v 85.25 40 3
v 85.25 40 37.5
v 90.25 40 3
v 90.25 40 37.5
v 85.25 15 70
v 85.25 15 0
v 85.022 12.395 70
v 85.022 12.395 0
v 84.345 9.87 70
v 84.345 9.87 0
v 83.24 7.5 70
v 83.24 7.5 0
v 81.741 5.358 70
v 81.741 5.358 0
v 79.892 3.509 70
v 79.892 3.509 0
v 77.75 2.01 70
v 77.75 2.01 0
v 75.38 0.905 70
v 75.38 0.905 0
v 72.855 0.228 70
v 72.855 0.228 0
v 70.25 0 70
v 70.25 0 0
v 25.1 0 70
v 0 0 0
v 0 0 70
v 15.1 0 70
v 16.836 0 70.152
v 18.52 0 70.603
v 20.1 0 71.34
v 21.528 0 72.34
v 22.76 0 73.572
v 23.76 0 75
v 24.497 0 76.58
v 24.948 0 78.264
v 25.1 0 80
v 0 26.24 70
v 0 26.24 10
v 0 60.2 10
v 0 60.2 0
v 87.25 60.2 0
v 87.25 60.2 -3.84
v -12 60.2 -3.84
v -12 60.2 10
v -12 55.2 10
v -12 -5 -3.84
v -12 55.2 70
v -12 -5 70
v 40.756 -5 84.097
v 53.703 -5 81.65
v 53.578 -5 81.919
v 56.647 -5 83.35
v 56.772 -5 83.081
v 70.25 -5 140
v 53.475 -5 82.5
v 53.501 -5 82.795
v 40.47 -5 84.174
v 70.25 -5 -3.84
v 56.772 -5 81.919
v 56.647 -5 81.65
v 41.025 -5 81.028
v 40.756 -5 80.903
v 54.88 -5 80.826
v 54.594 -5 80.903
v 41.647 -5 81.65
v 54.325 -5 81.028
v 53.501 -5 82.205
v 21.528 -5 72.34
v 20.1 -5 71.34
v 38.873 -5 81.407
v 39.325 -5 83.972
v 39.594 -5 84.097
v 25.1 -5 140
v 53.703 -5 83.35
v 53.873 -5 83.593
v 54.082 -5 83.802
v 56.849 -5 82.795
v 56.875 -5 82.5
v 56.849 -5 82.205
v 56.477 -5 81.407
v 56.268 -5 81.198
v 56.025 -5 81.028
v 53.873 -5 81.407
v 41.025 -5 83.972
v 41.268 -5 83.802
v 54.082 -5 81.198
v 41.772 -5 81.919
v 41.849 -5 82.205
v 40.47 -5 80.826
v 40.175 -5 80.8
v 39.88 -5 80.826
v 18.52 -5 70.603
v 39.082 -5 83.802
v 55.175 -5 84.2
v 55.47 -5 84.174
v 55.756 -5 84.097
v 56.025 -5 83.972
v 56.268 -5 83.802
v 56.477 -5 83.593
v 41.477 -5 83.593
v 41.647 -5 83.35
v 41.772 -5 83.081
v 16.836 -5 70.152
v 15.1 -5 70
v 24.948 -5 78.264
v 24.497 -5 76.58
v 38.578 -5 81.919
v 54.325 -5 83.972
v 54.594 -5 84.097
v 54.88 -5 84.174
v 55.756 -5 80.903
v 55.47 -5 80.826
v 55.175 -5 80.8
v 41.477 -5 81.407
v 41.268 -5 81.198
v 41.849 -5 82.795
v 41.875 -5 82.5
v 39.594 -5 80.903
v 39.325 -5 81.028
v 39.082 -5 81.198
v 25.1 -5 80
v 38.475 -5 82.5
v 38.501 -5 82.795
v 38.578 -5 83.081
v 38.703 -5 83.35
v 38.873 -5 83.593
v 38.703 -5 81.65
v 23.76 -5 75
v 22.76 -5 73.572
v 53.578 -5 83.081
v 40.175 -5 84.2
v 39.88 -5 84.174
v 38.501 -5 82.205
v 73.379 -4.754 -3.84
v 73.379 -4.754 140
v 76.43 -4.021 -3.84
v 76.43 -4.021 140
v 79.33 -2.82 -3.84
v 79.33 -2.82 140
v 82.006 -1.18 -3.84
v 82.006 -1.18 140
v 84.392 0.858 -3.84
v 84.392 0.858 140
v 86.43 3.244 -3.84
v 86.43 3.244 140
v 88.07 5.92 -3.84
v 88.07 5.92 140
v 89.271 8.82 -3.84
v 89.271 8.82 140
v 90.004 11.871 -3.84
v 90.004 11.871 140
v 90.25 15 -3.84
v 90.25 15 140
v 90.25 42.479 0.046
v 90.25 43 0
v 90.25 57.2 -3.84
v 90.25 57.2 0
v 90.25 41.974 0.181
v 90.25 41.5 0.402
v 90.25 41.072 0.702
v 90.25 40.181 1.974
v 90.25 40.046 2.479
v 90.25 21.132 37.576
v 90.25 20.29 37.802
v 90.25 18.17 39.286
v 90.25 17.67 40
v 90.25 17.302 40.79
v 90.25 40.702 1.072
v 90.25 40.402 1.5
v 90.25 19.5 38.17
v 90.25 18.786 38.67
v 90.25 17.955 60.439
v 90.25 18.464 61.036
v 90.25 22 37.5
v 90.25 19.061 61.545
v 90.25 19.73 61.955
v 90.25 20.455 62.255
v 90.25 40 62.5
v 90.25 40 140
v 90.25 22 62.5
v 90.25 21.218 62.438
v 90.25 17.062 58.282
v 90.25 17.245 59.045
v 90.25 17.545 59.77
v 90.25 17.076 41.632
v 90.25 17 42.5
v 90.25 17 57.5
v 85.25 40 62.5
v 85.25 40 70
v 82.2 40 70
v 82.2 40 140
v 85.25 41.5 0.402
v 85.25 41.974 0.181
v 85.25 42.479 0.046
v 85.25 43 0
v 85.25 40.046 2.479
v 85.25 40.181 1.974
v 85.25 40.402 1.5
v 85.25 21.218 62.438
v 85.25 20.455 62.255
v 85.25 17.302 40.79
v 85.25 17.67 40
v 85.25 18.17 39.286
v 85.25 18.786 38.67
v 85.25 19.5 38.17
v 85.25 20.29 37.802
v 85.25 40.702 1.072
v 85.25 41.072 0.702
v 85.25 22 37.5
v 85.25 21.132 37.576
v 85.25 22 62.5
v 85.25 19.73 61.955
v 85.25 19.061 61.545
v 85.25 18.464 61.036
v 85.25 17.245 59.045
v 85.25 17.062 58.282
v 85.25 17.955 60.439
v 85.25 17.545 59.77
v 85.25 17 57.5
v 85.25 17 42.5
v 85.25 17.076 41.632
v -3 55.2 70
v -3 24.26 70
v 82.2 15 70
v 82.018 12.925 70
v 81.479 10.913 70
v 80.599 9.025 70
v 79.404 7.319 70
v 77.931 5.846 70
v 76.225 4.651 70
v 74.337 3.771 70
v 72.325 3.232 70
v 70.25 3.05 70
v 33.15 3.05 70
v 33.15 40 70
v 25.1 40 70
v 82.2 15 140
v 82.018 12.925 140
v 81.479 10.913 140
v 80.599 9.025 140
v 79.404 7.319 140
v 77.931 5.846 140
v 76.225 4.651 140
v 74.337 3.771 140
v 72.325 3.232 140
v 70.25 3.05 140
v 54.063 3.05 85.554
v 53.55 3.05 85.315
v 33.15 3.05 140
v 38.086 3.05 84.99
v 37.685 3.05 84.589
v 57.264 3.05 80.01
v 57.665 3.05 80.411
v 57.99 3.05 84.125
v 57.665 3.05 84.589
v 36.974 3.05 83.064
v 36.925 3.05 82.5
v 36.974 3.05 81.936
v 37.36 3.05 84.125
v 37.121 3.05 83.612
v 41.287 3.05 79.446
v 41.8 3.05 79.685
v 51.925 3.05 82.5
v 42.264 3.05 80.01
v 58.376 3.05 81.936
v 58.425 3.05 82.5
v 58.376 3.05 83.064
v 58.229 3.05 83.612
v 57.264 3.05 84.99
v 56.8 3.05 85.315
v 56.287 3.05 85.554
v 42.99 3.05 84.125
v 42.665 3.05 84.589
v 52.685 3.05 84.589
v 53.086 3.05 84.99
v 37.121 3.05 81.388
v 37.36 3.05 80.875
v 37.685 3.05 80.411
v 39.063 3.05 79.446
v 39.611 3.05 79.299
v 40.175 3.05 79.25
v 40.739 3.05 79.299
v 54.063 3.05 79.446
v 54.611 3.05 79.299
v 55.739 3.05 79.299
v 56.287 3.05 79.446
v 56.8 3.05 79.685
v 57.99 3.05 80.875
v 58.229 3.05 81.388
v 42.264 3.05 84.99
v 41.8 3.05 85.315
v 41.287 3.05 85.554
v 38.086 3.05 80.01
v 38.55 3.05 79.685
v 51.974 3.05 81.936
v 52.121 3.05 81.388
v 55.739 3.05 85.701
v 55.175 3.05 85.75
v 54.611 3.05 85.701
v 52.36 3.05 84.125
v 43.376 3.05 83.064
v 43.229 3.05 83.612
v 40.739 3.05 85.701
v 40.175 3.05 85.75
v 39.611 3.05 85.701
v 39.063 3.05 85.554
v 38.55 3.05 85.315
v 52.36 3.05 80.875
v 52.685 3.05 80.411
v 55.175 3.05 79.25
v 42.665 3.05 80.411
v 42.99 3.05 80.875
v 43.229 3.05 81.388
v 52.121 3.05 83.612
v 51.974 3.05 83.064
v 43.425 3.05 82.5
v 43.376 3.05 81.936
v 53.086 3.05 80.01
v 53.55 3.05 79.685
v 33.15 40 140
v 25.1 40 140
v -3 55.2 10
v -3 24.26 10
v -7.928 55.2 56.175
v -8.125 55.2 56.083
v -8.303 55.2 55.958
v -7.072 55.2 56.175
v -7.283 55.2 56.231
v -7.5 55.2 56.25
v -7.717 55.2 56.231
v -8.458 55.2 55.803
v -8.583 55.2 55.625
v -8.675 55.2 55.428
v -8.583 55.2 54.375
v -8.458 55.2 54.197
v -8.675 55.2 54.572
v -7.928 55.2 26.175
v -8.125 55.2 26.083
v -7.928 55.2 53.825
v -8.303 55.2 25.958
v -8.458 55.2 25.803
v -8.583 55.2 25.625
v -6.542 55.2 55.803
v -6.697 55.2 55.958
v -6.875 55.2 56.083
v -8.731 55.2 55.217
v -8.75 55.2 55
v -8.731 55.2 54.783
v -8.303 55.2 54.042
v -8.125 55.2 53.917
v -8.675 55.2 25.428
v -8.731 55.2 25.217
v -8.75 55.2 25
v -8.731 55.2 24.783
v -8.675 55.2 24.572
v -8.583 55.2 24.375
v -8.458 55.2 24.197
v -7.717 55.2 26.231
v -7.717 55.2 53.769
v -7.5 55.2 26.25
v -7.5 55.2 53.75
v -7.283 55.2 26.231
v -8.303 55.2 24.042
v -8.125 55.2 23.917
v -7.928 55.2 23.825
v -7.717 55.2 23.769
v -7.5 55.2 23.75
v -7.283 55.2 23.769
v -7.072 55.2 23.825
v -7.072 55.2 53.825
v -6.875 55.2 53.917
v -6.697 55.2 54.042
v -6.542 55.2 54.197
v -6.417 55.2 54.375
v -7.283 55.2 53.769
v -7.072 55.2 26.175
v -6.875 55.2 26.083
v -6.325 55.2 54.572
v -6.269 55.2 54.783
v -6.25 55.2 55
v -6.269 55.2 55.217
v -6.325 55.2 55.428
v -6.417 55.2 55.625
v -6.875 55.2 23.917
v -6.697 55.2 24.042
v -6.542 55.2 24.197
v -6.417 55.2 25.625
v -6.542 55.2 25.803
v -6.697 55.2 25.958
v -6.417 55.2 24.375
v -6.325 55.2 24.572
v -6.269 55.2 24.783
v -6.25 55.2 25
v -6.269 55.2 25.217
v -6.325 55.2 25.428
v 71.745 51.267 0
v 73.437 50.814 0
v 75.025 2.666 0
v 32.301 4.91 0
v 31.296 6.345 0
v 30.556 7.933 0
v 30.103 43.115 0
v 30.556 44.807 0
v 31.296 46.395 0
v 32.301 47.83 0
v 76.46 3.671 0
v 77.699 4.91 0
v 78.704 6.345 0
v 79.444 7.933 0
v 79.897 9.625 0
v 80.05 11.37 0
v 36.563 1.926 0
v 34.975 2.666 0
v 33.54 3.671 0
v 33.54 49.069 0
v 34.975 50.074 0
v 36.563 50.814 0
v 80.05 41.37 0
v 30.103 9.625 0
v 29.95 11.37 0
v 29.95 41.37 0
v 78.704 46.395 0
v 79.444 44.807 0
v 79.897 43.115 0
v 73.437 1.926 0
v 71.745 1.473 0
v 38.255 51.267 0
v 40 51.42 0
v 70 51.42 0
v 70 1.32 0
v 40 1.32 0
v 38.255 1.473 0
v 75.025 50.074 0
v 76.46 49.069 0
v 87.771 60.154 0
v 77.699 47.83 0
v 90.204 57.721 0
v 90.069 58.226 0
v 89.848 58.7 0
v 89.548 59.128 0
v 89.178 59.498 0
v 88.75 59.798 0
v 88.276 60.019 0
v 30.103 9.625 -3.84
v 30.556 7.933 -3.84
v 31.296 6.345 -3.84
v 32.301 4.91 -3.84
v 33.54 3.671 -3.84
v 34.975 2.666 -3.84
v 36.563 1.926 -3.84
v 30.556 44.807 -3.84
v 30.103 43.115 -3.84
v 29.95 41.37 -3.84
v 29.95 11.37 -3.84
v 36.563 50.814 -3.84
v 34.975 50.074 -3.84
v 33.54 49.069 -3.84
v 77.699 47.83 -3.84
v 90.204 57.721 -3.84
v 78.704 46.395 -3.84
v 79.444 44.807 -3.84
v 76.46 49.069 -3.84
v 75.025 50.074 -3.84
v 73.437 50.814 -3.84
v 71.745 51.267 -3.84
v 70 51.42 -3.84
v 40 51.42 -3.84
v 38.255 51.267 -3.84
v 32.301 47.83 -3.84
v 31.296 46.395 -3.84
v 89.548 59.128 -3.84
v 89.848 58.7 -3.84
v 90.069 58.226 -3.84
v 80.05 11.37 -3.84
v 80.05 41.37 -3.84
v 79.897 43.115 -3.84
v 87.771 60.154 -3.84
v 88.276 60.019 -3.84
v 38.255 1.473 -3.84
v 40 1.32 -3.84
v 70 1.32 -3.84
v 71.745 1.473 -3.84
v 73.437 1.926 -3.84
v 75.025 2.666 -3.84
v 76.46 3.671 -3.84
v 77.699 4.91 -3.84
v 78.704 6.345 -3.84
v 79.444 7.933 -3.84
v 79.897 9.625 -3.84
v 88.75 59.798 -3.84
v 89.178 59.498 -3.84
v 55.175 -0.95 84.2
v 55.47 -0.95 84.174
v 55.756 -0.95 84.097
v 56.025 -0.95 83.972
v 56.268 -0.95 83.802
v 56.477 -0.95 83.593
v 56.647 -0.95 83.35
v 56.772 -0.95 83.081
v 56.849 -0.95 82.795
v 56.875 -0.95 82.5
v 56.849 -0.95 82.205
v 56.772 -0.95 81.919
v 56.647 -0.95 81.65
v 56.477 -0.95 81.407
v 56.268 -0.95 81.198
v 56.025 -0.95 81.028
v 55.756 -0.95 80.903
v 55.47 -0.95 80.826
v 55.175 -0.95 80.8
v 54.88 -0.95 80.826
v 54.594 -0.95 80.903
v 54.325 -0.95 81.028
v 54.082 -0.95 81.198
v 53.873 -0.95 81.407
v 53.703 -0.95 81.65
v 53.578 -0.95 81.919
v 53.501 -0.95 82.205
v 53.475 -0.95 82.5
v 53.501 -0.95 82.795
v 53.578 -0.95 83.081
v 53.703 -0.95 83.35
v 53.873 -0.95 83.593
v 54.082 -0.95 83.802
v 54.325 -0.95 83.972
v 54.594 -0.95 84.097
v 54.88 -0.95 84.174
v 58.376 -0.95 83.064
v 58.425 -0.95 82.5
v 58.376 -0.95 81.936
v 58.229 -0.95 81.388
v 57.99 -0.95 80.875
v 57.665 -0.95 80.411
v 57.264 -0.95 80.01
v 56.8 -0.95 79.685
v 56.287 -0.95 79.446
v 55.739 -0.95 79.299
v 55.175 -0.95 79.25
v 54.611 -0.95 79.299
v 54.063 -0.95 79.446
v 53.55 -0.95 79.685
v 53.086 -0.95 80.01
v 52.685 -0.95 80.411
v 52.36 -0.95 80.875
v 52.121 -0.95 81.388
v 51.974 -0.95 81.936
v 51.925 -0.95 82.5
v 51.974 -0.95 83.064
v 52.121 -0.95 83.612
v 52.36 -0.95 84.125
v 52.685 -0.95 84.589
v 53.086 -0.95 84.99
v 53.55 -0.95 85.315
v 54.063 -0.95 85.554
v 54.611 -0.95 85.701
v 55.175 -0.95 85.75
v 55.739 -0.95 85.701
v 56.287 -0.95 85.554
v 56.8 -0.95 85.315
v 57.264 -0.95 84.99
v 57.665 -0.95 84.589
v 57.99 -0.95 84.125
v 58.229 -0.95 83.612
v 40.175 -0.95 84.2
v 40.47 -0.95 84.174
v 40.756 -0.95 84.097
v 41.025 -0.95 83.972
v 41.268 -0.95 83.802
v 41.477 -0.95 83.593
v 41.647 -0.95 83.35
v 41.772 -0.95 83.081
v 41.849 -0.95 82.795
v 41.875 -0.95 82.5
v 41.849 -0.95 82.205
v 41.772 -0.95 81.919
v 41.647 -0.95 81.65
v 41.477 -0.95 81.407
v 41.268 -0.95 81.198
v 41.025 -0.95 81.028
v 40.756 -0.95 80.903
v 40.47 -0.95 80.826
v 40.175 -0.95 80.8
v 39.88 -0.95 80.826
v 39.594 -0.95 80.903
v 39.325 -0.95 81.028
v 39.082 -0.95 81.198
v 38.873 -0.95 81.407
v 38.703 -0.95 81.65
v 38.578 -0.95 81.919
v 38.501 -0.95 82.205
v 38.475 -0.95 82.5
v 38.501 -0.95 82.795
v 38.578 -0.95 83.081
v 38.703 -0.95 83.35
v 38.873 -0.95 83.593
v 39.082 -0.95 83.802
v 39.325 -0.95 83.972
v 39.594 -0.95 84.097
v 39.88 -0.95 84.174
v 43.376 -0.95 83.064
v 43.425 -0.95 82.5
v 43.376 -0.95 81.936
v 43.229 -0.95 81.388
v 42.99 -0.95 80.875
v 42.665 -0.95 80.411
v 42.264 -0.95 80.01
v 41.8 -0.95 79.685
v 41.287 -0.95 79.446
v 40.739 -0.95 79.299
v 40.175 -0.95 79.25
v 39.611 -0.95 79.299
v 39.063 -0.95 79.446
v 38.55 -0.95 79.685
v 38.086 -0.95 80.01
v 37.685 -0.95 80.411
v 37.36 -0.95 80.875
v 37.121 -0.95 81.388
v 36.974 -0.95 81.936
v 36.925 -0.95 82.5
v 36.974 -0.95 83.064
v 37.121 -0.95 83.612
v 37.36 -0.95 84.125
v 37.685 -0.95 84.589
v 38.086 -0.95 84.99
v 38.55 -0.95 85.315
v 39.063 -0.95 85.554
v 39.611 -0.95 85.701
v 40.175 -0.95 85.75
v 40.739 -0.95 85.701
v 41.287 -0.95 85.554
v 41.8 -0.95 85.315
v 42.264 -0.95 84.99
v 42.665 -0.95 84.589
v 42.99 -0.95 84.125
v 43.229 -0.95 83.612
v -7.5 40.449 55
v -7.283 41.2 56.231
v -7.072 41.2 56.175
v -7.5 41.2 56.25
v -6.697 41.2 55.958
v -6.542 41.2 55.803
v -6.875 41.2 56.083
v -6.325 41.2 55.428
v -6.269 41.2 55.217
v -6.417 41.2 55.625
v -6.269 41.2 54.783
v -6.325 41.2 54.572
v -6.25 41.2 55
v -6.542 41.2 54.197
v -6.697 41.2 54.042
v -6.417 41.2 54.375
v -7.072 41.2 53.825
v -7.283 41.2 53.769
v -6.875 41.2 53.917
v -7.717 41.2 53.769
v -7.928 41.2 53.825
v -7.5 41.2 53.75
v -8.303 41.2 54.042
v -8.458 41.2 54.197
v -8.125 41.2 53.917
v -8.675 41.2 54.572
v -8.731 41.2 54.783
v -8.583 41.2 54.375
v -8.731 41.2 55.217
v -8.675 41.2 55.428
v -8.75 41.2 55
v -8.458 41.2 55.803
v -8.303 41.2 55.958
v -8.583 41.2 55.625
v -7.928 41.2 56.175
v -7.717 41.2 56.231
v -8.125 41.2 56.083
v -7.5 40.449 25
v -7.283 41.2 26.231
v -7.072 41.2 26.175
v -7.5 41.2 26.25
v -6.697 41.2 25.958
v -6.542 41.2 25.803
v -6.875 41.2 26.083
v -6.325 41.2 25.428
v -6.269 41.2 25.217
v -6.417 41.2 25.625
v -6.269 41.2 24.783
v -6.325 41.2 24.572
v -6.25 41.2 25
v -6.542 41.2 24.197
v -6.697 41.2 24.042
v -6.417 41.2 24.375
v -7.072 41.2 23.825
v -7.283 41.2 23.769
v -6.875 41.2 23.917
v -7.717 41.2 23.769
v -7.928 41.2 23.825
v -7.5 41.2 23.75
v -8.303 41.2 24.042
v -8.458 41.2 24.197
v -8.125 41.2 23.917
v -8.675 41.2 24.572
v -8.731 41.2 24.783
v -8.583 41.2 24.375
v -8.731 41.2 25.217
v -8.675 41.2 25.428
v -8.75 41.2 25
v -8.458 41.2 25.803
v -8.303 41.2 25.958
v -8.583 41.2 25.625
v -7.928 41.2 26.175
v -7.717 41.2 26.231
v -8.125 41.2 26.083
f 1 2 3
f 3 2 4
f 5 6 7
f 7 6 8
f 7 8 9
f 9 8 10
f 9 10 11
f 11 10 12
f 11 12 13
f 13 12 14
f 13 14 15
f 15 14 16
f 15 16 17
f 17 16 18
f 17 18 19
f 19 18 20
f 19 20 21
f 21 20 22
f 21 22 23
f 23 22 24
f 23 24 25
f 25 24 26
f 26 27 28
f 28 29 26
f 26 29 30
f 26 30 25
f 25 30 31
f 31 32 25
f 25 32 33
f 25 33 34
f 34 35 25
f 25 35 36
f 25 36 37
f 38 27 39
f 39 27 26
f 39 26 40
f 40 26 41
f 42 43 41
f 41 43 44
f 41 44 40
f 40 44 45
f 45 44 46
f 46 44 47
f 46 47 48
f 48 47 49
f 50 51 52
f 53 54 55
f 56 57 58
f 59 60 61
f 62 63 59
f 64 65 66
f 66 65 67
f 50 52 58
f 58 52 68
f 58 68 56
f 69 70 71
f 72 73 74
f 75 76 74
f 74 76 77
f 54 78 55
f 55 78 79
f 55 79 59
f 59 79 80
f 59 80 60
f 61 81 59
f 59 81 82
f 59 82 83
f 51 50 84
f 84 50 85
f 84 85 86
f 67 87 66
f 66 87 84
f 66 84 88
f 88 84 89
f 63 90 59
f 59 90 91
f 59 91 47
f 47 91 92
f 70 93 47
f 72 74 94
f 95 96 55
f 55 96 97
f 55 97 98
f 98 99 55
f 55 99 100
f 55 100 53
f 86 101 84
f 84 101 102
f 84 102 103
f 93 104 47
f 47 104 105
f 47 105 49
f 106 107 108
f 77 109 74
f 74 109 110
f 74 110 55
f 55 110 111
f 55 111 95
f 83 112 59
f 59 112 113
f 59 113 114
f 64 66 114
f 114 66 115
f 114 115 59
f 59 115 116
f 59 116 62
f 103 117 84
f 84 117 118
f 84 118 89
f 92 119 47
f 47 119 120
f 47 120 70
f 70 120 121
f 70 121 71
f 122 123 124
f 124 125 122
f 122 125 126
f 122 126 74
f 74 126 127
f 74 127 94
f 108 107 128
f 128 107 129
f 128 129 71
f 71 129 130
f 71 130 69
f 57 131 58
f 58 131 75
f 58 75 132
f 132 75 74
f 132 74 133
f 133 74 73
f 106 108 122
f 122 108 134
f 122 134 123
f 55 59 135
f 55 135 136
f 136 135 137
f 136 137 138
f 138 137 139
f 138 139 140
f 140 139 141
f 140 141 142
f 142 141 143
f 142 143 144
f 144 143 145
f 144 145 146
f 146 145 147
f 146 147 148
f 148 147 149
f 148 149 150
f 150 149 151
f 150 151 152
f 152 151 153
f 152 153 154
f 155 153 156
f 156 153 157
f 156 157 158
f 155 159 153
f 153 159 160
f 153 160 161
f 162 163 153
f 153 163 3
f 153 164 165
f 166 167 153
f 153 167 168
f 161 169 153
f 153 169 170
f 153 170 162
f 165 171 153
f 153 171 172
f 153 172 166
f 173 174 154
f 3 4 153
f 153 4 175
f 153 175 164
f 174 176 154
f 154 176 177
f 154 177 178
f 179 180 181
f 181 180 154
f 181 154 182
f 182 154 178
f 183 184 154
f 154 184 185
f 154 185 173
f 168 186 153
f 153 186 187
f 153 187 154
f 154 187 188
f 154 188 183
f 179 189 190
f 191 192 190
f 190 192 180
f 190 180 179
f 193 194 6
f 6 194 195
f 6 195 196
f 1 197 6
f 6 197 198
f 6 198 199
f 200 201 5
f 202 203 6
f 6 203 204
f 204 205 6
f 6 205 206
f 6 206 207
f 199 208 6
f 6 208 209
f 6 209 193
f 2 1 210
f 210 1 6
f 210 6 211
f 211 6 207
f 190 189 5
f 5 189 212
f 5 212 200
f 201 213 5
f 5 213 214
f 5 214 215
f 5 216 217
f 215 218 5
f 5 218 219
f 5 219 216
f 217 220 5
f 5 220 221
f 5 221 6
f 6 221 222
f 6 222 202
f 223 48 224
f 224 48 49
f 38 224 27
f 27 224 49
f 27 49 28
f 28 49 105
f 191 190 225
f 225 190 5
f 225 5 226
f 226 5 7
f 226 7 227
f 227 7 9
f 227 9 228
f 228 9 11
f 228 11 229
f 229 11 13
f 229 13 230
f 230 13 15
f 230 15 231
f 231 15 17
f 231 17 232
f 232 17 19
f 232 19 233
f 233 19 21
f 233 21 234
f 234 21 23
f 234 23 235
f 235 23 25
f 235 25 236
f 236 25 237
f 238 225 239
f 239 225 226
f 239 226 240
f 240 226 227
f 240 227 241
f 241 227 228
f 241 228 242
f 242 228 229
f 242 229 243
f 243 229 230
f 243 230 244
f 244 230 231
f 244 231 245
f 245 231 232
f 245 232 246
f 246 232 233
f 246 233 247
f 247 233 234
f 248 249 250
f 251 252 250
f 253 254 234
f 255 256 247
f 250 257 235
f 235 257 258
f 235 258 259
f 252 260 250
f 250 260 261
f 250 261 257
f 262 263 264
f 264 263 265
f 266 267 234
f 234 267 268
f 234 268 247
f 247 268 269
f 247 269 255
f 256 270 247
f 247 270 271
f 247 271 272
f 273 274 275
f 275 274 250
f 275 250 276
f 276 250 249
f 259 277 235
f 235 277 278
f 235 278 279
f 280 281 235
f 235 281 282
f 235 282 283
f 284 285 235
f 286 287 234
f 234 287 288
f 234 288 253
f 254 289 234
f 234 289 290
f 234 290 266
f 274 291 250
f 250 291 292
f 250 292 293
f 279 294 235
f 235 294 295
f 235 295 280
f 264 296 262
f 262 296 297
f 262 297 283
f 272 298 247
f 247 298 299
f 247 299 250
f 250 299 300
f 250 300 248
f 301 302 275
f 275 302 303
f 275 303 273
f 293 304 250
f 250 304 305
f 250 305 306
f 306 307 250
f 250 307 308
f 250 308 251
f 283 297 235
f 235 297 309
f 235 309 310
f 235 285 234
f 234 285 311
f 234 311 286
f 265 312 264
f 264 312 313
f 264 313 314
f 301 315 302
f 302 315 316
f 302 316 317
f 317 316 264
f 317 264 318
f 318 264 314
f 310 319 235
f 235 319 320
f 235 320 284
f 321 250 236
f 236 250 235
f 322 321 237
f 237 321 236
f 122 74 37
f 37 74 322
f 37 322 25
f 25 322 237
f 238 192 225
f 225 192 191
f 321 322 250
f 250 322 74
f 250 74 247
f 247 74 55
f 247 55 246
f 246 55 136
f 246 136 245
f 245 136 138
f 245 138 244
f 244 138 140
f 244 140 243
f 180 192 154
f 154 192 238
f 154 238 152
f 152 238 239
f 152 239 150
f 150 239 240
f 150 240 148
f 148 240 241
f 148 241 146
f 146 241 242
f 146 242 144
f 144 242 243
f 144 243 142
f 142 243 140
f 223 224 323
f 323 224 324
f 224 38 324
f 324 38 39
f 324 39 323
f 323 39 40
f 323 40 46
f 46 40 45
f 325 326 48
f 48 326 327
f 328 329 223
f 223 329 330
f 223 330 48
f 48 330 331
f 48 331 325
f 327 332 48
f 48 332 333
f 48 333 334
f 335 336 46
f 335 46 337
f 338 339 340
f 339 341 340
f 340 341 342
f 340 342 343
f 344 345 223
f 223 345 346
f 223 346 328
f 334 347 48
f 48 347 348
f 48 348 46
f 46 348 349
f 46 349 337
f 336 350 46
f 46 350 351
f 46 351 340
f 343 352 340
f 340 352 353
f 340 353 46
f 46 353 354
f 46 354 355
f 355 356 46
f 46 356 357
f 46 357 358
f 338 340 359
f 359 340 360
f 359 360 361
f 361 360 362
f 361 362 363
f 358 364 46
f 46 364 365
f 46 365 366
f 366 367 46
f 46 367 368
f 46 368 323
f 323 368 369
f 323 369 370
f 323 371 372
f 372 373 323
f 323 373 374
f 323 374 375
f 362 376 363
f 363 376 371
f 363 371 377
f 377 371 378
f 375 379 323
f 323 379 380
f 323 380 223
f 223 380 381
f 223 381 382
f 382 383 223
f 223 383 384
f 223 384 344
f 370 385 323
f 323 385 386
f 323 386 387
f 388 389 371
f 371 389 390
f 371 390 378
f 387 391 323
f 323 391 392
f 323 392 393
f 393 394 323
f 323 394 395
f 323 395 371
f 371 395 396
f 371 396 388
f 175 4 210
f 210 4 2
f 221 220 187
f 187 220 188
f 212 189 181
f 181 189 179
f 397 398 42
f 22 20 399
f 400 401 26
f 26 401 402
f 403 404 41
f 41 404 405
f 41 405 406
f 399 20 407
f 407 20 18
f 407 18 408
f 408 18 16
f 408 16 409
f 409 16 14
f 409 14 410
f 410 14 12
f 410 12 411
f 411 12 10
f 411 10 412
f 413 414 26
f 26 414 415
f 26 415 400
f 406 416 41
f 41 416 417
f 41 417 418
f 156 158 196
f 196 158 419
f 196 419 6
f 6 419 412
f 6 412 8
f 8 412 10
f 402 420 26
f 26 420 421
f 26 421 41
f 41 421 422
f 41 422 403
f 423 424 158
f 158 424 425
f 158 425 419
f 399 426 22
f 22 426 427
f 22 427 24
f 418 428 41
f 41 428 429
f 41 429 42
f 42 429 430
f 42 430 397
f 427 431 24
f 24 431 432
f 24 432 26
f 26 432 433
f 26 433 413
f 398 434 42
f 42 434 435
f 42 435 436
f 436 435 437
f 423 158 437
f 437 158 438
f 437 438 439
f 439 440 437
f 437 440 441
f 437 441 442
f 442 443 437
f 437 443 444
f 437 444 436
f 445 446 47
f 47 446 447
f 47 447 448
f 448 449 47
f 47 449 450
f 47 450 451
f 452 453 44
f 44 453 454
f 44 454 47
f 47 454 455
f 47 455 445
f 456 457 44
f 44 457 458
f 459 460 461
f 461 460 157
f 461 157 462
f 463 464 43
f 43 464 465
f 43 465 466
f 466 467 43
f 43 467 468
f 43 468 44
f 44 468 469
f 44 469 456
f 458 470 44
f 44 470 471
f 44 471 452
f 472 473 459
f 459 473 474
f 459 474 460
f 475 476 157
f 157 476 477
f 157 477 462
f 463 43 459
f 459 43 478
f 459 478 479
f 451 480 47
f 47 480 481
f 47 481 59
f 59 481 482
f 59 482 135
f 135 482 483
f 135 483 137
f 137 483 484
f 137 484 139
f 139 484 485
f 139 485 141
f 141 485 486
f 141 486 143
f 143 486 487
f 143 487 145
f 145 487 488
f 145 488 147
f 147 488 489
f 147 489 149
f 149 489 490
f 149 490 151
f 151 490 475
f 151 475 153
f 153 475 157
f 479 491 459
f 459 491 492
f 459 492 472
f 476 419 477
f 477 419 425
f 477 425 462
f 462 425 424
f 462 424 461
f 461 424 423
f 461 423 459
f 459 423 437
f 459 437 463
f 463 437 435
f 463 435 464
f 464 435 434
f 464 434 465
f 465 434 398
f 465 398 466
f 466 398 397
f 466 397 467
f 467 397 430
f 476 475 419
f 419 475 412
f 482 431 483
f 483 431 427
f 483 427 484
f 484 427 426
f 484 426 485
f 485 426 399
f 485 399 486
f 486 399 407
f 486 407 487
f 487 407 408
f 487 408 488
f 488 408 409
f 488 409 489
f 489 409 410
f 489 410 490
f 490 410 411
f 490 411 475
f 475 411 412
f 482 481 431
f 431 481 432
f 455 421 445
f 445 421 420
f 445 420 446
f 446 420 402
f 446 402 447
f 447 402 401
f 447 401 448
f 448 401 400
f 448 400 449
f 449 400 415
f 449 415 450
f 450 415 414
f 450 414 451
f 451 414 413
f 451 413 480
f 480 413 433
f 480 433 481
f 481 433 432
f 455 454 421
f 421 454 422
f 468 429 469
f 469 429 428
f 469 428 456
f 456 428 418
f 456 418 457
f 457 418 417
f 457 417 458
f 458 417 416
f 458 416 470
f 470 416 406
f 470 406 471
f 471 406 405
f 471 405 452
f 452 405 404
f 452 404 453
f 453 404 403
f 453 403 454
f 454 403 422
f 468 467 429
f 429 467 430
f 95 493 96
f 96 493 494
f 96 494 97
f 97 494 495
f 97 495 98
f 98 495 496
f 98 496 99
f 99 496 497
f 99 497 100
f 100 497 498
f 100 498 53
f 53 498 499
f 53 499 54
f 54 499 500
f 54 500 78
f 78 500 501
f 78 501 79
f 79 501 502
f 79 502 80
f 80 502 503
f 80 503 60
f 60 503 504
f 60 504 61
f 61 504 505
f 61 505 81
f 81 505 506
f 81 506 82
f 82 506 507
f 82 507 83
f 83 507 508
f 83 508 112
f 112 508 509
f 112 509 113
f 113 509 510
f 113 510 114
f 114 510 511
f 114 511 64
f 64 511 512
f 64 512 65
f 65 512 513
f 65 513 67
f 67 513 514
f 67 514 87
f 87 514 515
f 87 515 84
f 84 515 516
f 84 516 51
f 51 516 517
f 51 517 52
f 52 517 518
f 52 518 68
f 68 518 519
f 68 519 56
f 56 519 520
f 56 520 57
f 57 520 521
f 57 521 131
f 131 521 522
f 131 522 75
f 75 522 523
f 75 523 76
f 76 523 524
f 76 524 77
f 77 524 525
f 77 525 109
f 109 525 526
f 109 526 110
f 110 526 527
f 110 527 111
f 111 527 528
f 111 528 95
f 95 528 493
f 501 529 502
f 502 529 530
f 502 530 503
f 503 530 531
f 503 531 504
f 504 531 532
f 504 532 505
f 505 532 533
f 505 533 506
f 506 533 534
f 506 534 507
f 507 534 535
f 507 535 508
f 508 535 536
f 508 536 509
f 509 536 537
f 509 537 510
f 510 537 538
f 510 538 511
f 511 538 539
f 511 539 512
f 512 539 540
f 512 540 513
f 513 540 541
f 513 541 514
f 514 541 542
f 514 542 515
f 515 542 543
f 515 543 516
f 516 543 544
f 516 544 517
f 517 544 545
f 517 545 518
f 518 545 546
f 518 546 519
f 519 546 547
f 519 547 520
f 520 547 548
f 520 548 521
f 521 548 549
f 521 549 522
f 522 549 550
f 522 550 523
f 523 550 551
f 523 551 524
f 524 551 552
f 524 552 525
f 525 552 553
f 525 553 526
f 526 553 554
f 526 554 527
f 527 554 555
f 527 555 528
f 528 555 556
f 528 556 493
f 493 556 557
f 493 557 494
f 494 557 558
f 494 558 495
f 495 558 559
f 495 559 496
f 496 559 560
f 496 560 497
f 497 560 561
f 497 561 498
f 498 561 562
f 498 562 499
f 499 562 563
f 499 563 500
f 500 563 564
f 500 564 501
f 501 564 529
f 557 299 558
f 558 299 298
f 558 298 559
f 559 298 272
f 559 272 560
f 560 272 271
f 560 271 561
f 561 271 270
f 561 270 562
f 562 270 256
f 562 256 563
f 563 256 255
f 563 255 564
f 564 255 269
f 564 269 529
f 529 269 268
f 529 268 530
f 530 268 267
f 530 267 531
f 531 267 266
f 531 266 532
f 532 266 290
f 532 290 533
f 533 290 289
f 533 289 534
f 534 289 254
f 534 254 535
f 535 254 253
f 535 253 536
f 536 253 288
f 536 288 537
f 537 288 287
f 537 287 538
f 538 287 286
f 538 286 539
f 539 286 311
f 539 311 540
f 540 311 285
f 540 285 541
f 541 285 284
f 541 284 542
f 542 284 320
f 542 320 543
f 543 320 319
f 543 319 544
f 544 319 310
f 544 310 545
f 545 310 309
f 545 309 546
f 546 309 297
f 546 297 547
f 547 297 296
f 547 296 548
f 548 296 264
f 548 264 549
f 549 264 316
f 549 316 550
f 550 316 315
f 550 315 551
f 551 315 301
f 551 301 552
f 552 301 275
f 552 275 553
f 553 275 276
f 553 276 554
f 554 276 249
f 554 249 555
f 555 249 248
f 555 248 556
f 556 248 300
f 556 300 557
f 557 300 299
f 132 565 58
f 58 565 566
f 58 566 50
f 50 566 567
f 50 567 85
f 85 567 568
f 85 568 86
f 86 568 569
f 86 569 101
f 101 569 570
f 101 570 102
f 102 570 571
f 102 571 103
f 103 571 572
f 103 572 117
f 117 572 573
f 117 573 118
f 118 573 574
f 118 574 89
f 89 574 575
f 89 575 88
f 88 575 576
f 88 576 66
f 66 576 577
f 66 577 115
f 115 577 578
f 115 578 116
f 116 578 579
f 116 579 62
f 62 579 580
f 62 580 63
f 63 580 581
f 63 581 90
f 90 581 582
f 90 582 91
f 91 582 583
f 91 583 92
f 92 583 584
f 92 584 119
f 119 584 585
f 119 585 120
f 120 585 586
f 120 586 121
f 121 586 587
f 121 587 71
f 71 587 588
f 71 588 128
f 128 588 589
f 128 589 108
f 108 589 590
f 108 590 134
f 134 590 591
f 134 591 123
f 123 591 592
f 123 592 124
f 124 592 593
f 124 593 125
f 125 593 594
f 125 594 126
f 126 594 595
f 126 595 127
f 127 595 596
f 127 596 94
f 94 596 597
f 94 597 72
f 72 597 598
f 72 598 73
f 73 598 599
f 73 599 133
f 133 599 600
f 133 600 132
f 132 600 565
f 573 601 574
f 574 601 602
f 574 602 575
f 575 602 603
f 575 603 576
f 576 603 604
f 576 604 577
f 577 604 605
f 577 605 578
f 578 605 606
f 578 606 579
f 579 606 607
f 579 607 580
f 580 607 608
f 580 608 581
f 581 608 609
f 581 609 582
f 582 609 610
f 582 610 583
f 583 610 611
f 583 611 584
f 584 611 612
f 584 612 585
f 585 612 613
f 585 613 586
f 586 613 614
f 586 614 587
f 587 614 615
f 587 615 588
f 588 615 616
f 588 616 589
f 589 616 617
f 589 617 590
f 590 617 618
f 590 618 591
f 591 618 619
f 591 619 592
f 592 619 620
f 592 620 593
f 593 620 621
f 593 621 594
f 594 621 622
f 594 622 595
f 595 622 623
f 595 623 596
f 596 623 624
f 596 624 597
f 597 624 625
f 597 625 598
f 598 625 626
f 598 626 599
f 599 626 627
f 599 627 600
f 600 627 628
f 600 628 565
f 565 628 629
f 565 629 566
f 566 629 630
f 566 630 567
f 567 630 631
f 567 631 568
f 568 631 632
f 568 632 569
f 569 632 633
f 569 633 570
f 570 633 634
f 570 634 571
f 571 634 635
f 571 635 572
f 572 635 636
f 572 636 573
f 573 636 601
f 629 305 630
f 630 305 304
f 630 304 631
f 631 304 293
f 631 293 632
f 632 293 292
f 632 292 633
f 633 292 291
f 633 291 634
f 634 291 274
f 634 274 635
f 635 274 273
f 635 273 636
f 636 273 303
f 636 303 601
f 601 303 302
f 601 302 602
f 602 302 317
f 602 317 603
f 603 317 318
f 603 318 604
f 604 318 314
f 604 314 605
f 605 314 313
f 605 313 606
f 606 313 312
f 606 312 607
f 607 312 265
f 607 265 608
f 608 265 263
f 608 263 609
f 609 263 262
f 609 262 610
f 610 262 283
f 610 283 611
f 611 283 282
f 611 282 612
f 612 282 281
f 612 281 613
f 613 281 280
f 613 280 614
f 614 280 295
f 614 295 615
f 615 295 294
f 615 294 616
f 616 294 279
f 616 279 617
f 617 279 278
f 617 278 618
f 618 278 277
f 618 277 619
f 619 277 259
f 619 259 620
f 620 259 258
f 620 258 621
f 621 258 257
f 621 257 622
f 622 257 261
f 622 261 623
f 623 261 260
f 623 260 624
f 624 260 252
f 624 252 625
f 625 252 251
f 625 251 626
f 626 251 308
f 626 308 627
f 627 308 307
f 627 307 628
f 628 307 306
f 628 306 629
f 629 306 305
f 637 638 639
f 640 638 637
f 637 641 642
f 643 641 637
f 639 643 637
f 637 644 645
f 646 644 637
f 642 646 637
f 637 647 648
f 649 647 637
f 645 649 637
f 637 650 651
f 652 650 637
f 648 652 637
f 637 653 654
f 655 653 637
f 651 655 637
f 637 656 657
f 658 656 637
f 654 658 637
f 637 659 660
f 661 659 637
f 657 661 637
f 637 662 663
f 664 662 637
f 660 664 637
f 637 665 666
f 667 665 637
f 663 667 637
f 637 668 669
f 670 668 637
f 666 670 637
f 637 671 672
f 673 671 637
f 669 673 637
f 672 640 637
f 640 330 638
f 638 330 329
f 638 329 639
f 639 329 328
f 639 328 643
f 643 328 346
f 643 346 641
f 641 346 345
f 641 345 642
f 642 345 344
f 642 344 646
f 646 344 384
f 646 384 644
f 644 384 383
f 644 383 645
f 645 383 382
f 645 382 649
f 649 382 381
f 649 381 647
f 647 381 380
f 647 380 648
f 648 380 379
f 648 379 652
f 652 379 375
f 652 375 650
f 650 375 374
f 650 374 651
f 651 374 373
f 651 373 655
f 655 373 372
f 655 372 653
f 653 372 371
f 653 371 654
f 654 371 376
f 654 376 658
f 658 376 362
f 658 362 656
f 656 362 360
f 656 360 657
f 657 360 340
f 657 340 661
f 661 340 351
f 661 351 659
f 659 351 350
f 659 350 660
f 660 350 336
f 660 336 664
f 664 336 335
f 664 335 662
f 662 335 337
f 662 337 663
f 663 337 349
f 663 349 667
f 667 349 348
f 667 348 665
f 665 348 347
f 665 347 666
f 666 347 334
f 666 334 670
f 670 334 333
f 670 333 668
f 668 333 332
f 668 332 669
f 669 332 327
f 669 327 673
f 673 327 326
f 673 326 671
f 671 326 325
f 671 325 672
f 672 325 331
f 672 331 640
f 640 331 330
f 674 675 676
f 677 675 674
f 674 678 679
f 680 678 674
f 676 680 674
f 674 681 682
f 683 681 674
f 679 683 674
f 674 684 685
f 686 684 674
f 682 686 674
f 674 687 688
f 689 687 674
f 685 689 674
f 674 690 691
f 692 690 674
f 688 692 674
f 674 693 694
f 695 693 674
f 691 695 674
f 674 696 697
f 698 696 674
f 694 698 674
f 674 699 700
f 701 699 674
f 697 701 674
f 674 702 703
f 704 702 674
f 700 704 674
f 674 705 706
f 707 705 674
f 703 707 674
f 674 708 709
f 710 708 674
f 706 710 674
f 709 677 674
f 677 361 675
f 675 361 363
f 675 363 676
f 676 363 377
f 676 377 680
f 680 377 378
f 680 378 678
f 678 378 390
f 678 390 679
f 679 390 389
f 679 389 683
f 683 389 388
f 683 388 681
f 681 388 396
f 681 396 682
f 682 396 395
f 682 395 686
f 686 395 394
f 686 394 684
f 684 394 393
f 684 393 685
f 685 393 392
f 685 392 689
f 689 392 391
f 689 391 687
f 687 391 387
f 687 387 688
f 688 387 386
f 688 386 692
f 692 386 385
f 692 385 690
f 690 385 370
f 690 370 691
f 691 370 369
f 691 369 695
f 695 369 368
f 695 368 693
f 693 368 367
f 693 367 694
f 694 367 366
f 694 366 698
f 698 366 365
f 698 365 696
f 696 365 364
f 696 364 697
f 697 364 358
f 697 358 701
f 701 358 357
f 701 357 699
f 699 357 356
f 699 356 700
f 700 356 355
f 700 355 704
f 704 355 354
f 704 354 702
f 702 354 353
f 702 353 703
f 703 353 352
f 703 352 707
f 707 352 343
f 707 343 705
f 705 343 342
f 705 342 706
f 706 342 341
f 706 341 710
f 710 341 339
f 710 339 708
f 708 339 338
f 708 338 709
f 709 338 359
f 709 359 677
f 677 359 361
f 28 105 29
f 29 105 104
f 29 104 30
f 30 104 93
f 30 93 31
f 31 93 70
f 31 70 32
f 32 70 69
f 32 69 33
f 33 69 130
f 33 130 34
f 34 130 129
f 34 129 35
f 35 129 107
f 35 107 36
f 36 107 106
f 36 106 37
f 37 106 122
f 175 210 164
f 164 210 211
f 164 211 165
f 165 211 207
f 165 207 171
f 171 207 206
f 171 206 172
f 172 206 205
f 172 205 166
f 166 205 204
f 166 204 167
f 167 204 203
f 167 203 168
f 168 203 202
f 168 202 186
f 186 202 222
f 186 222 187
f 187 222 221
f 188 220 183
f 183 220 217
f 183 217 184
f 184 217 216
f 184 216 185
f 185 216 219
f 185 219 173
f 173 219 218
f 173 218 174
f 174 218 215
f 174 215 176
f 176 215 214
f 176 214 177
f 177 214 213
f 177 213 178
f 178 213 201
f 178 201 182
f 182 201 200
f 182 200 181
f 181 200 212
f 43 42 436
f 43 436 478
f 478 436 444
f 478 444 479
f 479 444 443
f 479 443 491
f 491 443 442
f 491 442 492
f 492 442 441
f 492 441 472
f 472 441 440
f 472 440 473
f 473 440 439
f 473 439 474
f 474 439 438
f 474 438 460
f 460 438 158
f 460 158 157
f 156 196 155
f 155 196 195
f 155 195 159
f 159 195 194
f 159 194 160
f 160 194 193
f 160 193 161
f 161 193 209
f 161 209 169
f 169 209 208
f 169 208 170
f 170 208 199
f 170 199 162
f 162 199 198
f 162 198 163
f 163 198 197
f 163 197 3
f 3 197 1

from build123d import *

# Parameters (mm, degrees)
BOSS_EXTRUDE1_DEPTH            = 70
BOSS_EXTRUDE2_DEPTH            = 70
CUT_EXTRUDE1_DEPTH             = 60
SKETCH13_W                     = 9
SKETCH13_H                     = 60
CUT_EXTRUDE3_DEPTH             = 5
SKETCH12_W                     = 25
SKETCH12_H                     = 23
CUT_EXTRUDE2_DEPTH             = 5
BOSS_EXTRUDE3_DEPTH            = 3.84
CBORE_FOR_M3_SHCS1_D           = 3.4
CBORE_FOR_M3_SHCS1_DEPTH       = 8.05
CBORE_FOR_M3_SHCS1_CBORE_D     = 6.5
CBORE_FOR_M3_SHCS1_CBORE_DEPTH = 4
CBORE_FOR_M3_SHCS1_TIP         = 1.021463052
M3X0_5_TAPPED_HOLE1_D          = 2.5
M3X0_5_TAPPED_HOLE1_DEPTH      = 14
M3X0_5_TAPPED_HOLE1_TIP        = 0.751075774
FILLET1_R                      = 10
FILLET4_R                      = 5
FILLET5_R                      = 3
TOLERANCE_BY                   = 0.05
TOLERANCE_2_BY                 = 0.05
TOLERANCE_3_BY                 = 0.05
TOLERANCE_4_BY                 = 0.05
TOLERANCE_5_BY                 = 0.05
TOLERANCE_6_BY                 = 0.05
TOLERANCE_7_BY                 = 0.05
TOLERANCE_8_BY                 = 0.05


with BuildPart() as part:
    # Sketch3 → Boss-Extrude1 (new body)
    with BuildSketch(Plane.XY):
        with BuildLine():
            Line((85.25, 15), (85.25, 40))
            Line((85.25, 40), (90.25, 40))
            Line((90.25, 40), (90.25, 15))
            ThreePointArc((90.25, 15), (84.392135624, 0.857864376), (70.25, -5))
            Line((70.25, -5), (-12, -5))
            Line((-12, -5), (-12, 60.2))
            Line((-12, 60.2), (0, 60.2))
            Line((0, 60.2), (0, 0))
            Line((0, 0), (70.25, 0))
            ThreePointArc((70.25, 0), (80.856601718, 4.393398282), (85.25, 15))
        make_face()
    extrude(amount=BOSS_EXTRUDE1_DEPTH)

    # Sketch5 → Boss-Extrude2 (add)
    with BuildSketch(Plane.XY.offset(70)):
        with BuildLine():
            Line((82.2, 15), (82.2, 40))
            Line((82.2, 40), (90.25, 40))
            Line((90.25, 40), (90.25, 15))
            ThreePointArc((90.25, 15), (84.392135624, 0.857864376), (70.25, -5))
            Line((70.25, -5), (25.1, -5))
            Line((25.1, -5), (25.1, 40))
            Line((25.1, 40), (33.15, 40))
            Line((33.15, 40), (33.15, 3.05))
            Line((33.15, 3.05), (70.25, 3.05))
            ThreePointArc((70.25, 3.05), (78.699926035, 6.550073965), (82.2, 15))
        make_face()
    extrude(amount=BOSS_EXTRUDE2_DEPTH)

    # Sketch6 → Cut-Extrude1 (cut)
    with BuildSketch(Plane.XY.offset(70)):
        Polygon((-3, 24.26), (0, 26.24), (0, 60.2), (-3, 60.2), align=None)
    extrude(amount=-CUT_EXTRUDE1_DEPTH, mode=Mode.SUBTRACT)

    # Sketch13 → Cut-Extrude3 (cut)
    with BuildSketch(Plane(origin=(0, 60.2, 0), x_dir=(1, 0, 0), z_dir=(0, 1, 0))):
        with Locations((-7.5, -40)):
            Rectangle(SKETCH13_W, SKETCH13_H)
    extrude(amount=-CUT_EXTRUDE3_DEPTH, mode=Mode.SUBTRACT)

    # Sketch12 → Cut-Extrude2 (cut)
    with BuildSketch(Plane(origin=(90.25, 0, 0), x_dir=(0, 0, -1), z_dir=(1, 0, 0))):
        with Locations((-50, 28.5)):
            Rectangle(SKETCH12_W, SKETCH12_H)
    extrude(amount=-CUT_EXTRUDE2_DEPTH, mode=Mode.SUBTRACT)

    # Sketch7 → Boss-Extrude3 (add)
    with BuildSketch(Plane.XY):
        with BuildLine():
            Line((-12, 60.2), (-12, -5))
            Line((-12, -5), (70.25, -5))
            ThreePointArc((70.25, -5), (84.392135624, 0.857864376), (90.25, 15))
            Line((90.25, 15), (90.25, 60.2))
            Line((90.25, 60.2), (-12, 60.2))
        make_face()
        with BuildLine():
            Line((70, 51.37), (40, 51.37))
            ThreePointArc((40, 51.37), (32.928932188, 48.441067812), (30, 41.37))
            Line((30, 41.37), (30, 11.37))
            ThreePointArc((30, 11.37), (32.928932188, 4.298932188), (40, 1.37))
            Line((40, 1.37), (70, 1.37))
            ThreePointArc((70, 1.37), (77.071067812, 4.298932188), (80, 11.37))
            Line((80, 11.37), (80, 41.37))
            ThreePointArc((80, 41.37), (77.071067812, 48.441067812), (70, 51.37))
        make_face(mode=Mode.SUBTRACT)
    extrude(amount=-BOSS_EXTRUDE3_DEPTH)

    # CBORE for M3 SHCS1
    with Locations(Plane(origin=(0, 3.05, 0), x_dir=(1, 0, 0), z_dir=(0, 1, 0))):
        with Locations((40.175, -82.5), (55.175, -82.5)):
            CounterBoreHole(CBORE_FOR_M3_SHCS1_D / 2, CBORE_FOR_M3_SHCS1_CBORE_D / 2, CBORE_FOR_M3_SHCS1_CBORE_DEPTH, depth=CBORE_FOR_M3_SHCS1_DEPTH)
            with Locations((0, 0, -(CBORE_FOR_M3_SHCS1_DEPTH + CBORE_FOR_M3_SHCS1_TIP / 2))):  # 118° drill point
                Cone(0, CBORE_FOR_M3_SHCS1_D / 2, CBORE_FOR_M3_SHCS1_TIP, mode=Mode.SUBTRACT)

    # M3x0.5 Tapped Hole1
    with Locations(Plane(origin=(0, 55.2, 0), x_dir=(1, 0, 0), z_dir=(0, 1, 0))):
        with Locations((-7.5, -25), (-7.5, -55)):
            Hole(M3X0_5_TAPPED_HOLE1_D / 2, depth=M3X0_5_TAPPED_HOLE1_DEPTH)
            with Locations((0, 0, -(M3X0_5_TAPPED_HOLE1_DEPTH + M3X0_5_TAPPED_HOLE1_TIP / 2))):  # 118° drill point
                Cone(0, M3X0_5_TAPPED_HOLE1_D / 2, M3X0_5_TAPPED_HOLE1_TIP, mode=Mode.SUBTRACT)

    # Fillet1
    fillet1_edges = [part.edges().sort_by_distance(p)[0] for p in [
        (25.1, -2.5, 70),
    ]]
    fillet(fillet1_edges, radius=FILLET1_R)

    # Fillet4
    fillet4_edges = [part.edges().sort_by_distance(p)[0] for p in [
        (87.75, 17, 37.5),
        (87.75, 17, 62.5),
    ]]
    fillet(fillet4_edges, radius=FILLET4_R)

    # Fillet5
    fillet5_edges = [part.edges().sort_by_distance(p)[0] for p in [
        (87.75, 40, 0),
        (90.25, 60.2, -1.92),
    ]]
    fillet(fillet5_edges, radius=FILLET5_R)

    # Tolerance: a curved face moved inward by 0.05
    add(Solid.thicken(part.faces().sort_by_distance((32.928932188, 4.298932188, -1.92))[0], -TOLERANCE_BY), mode=Mode.SUBTRACT)

    # Tolerance 2: a face moved inward by 0.05
    extrude(part.faces().sort_by_distance((30, 26.37, -1.92))[0], amount=TOLERANCE_2_BY, dir=(-1, 0, 0), mode=Mode.SUBTRACT)

    # Tolerance 3: a curved face moved inward by 0.05
    add(Solid.thicken(part.faces().sort_by_distance((32.928932188, 48.441067812, -1.92))[0], -TOLERANCE_3_BY), mode=Mode.SUBTRACT)

    # Tolerance 4: a face moved inward by 0.05
    extrude(part.faces().sort_by_distance((55, 51.37, -1.92))[0], amount=TOLERANCE_4_BY, dir=(0, 1, 0), mode=Mode.SUBTRACT)

    # Tolerance 5: a curved face moved inward by 0.05
    add(Solid.thicken(part.faces().sort_by_distance((77.071067812, 48.441067812, -1.92))[0], -TOLERANCE_5_BY), mode=Mode.SUBTRACT)

    # Tolerance 6: a face moved inward by 0.05
    extrude(part.faces().sort_by_distance((80, 26.37, -1.92))[0], amount=TOLERANCE_6_BY, dir=(1, 0, 0), mode=Mode.SUBTRACT)

    # Tolerance 7: a curved face moved inward by 0.05
    add(Solid.thicken(part.faces().sort_by_distance((77.071067812, 4.298932188, -1.92))[0], -TOLERANCE_7_BY), mode=Mode.SUBTRACT)

    # Tolerance 8: a face moved inward by 0.05
    extrude(part.faces().sort_by_distance((55, 1.37, -1.92))[0], amount=TOLERANCE_8_BY, dir=(0, -1, 0), mode=Mode.SUBTRACT)


solid = part.part
